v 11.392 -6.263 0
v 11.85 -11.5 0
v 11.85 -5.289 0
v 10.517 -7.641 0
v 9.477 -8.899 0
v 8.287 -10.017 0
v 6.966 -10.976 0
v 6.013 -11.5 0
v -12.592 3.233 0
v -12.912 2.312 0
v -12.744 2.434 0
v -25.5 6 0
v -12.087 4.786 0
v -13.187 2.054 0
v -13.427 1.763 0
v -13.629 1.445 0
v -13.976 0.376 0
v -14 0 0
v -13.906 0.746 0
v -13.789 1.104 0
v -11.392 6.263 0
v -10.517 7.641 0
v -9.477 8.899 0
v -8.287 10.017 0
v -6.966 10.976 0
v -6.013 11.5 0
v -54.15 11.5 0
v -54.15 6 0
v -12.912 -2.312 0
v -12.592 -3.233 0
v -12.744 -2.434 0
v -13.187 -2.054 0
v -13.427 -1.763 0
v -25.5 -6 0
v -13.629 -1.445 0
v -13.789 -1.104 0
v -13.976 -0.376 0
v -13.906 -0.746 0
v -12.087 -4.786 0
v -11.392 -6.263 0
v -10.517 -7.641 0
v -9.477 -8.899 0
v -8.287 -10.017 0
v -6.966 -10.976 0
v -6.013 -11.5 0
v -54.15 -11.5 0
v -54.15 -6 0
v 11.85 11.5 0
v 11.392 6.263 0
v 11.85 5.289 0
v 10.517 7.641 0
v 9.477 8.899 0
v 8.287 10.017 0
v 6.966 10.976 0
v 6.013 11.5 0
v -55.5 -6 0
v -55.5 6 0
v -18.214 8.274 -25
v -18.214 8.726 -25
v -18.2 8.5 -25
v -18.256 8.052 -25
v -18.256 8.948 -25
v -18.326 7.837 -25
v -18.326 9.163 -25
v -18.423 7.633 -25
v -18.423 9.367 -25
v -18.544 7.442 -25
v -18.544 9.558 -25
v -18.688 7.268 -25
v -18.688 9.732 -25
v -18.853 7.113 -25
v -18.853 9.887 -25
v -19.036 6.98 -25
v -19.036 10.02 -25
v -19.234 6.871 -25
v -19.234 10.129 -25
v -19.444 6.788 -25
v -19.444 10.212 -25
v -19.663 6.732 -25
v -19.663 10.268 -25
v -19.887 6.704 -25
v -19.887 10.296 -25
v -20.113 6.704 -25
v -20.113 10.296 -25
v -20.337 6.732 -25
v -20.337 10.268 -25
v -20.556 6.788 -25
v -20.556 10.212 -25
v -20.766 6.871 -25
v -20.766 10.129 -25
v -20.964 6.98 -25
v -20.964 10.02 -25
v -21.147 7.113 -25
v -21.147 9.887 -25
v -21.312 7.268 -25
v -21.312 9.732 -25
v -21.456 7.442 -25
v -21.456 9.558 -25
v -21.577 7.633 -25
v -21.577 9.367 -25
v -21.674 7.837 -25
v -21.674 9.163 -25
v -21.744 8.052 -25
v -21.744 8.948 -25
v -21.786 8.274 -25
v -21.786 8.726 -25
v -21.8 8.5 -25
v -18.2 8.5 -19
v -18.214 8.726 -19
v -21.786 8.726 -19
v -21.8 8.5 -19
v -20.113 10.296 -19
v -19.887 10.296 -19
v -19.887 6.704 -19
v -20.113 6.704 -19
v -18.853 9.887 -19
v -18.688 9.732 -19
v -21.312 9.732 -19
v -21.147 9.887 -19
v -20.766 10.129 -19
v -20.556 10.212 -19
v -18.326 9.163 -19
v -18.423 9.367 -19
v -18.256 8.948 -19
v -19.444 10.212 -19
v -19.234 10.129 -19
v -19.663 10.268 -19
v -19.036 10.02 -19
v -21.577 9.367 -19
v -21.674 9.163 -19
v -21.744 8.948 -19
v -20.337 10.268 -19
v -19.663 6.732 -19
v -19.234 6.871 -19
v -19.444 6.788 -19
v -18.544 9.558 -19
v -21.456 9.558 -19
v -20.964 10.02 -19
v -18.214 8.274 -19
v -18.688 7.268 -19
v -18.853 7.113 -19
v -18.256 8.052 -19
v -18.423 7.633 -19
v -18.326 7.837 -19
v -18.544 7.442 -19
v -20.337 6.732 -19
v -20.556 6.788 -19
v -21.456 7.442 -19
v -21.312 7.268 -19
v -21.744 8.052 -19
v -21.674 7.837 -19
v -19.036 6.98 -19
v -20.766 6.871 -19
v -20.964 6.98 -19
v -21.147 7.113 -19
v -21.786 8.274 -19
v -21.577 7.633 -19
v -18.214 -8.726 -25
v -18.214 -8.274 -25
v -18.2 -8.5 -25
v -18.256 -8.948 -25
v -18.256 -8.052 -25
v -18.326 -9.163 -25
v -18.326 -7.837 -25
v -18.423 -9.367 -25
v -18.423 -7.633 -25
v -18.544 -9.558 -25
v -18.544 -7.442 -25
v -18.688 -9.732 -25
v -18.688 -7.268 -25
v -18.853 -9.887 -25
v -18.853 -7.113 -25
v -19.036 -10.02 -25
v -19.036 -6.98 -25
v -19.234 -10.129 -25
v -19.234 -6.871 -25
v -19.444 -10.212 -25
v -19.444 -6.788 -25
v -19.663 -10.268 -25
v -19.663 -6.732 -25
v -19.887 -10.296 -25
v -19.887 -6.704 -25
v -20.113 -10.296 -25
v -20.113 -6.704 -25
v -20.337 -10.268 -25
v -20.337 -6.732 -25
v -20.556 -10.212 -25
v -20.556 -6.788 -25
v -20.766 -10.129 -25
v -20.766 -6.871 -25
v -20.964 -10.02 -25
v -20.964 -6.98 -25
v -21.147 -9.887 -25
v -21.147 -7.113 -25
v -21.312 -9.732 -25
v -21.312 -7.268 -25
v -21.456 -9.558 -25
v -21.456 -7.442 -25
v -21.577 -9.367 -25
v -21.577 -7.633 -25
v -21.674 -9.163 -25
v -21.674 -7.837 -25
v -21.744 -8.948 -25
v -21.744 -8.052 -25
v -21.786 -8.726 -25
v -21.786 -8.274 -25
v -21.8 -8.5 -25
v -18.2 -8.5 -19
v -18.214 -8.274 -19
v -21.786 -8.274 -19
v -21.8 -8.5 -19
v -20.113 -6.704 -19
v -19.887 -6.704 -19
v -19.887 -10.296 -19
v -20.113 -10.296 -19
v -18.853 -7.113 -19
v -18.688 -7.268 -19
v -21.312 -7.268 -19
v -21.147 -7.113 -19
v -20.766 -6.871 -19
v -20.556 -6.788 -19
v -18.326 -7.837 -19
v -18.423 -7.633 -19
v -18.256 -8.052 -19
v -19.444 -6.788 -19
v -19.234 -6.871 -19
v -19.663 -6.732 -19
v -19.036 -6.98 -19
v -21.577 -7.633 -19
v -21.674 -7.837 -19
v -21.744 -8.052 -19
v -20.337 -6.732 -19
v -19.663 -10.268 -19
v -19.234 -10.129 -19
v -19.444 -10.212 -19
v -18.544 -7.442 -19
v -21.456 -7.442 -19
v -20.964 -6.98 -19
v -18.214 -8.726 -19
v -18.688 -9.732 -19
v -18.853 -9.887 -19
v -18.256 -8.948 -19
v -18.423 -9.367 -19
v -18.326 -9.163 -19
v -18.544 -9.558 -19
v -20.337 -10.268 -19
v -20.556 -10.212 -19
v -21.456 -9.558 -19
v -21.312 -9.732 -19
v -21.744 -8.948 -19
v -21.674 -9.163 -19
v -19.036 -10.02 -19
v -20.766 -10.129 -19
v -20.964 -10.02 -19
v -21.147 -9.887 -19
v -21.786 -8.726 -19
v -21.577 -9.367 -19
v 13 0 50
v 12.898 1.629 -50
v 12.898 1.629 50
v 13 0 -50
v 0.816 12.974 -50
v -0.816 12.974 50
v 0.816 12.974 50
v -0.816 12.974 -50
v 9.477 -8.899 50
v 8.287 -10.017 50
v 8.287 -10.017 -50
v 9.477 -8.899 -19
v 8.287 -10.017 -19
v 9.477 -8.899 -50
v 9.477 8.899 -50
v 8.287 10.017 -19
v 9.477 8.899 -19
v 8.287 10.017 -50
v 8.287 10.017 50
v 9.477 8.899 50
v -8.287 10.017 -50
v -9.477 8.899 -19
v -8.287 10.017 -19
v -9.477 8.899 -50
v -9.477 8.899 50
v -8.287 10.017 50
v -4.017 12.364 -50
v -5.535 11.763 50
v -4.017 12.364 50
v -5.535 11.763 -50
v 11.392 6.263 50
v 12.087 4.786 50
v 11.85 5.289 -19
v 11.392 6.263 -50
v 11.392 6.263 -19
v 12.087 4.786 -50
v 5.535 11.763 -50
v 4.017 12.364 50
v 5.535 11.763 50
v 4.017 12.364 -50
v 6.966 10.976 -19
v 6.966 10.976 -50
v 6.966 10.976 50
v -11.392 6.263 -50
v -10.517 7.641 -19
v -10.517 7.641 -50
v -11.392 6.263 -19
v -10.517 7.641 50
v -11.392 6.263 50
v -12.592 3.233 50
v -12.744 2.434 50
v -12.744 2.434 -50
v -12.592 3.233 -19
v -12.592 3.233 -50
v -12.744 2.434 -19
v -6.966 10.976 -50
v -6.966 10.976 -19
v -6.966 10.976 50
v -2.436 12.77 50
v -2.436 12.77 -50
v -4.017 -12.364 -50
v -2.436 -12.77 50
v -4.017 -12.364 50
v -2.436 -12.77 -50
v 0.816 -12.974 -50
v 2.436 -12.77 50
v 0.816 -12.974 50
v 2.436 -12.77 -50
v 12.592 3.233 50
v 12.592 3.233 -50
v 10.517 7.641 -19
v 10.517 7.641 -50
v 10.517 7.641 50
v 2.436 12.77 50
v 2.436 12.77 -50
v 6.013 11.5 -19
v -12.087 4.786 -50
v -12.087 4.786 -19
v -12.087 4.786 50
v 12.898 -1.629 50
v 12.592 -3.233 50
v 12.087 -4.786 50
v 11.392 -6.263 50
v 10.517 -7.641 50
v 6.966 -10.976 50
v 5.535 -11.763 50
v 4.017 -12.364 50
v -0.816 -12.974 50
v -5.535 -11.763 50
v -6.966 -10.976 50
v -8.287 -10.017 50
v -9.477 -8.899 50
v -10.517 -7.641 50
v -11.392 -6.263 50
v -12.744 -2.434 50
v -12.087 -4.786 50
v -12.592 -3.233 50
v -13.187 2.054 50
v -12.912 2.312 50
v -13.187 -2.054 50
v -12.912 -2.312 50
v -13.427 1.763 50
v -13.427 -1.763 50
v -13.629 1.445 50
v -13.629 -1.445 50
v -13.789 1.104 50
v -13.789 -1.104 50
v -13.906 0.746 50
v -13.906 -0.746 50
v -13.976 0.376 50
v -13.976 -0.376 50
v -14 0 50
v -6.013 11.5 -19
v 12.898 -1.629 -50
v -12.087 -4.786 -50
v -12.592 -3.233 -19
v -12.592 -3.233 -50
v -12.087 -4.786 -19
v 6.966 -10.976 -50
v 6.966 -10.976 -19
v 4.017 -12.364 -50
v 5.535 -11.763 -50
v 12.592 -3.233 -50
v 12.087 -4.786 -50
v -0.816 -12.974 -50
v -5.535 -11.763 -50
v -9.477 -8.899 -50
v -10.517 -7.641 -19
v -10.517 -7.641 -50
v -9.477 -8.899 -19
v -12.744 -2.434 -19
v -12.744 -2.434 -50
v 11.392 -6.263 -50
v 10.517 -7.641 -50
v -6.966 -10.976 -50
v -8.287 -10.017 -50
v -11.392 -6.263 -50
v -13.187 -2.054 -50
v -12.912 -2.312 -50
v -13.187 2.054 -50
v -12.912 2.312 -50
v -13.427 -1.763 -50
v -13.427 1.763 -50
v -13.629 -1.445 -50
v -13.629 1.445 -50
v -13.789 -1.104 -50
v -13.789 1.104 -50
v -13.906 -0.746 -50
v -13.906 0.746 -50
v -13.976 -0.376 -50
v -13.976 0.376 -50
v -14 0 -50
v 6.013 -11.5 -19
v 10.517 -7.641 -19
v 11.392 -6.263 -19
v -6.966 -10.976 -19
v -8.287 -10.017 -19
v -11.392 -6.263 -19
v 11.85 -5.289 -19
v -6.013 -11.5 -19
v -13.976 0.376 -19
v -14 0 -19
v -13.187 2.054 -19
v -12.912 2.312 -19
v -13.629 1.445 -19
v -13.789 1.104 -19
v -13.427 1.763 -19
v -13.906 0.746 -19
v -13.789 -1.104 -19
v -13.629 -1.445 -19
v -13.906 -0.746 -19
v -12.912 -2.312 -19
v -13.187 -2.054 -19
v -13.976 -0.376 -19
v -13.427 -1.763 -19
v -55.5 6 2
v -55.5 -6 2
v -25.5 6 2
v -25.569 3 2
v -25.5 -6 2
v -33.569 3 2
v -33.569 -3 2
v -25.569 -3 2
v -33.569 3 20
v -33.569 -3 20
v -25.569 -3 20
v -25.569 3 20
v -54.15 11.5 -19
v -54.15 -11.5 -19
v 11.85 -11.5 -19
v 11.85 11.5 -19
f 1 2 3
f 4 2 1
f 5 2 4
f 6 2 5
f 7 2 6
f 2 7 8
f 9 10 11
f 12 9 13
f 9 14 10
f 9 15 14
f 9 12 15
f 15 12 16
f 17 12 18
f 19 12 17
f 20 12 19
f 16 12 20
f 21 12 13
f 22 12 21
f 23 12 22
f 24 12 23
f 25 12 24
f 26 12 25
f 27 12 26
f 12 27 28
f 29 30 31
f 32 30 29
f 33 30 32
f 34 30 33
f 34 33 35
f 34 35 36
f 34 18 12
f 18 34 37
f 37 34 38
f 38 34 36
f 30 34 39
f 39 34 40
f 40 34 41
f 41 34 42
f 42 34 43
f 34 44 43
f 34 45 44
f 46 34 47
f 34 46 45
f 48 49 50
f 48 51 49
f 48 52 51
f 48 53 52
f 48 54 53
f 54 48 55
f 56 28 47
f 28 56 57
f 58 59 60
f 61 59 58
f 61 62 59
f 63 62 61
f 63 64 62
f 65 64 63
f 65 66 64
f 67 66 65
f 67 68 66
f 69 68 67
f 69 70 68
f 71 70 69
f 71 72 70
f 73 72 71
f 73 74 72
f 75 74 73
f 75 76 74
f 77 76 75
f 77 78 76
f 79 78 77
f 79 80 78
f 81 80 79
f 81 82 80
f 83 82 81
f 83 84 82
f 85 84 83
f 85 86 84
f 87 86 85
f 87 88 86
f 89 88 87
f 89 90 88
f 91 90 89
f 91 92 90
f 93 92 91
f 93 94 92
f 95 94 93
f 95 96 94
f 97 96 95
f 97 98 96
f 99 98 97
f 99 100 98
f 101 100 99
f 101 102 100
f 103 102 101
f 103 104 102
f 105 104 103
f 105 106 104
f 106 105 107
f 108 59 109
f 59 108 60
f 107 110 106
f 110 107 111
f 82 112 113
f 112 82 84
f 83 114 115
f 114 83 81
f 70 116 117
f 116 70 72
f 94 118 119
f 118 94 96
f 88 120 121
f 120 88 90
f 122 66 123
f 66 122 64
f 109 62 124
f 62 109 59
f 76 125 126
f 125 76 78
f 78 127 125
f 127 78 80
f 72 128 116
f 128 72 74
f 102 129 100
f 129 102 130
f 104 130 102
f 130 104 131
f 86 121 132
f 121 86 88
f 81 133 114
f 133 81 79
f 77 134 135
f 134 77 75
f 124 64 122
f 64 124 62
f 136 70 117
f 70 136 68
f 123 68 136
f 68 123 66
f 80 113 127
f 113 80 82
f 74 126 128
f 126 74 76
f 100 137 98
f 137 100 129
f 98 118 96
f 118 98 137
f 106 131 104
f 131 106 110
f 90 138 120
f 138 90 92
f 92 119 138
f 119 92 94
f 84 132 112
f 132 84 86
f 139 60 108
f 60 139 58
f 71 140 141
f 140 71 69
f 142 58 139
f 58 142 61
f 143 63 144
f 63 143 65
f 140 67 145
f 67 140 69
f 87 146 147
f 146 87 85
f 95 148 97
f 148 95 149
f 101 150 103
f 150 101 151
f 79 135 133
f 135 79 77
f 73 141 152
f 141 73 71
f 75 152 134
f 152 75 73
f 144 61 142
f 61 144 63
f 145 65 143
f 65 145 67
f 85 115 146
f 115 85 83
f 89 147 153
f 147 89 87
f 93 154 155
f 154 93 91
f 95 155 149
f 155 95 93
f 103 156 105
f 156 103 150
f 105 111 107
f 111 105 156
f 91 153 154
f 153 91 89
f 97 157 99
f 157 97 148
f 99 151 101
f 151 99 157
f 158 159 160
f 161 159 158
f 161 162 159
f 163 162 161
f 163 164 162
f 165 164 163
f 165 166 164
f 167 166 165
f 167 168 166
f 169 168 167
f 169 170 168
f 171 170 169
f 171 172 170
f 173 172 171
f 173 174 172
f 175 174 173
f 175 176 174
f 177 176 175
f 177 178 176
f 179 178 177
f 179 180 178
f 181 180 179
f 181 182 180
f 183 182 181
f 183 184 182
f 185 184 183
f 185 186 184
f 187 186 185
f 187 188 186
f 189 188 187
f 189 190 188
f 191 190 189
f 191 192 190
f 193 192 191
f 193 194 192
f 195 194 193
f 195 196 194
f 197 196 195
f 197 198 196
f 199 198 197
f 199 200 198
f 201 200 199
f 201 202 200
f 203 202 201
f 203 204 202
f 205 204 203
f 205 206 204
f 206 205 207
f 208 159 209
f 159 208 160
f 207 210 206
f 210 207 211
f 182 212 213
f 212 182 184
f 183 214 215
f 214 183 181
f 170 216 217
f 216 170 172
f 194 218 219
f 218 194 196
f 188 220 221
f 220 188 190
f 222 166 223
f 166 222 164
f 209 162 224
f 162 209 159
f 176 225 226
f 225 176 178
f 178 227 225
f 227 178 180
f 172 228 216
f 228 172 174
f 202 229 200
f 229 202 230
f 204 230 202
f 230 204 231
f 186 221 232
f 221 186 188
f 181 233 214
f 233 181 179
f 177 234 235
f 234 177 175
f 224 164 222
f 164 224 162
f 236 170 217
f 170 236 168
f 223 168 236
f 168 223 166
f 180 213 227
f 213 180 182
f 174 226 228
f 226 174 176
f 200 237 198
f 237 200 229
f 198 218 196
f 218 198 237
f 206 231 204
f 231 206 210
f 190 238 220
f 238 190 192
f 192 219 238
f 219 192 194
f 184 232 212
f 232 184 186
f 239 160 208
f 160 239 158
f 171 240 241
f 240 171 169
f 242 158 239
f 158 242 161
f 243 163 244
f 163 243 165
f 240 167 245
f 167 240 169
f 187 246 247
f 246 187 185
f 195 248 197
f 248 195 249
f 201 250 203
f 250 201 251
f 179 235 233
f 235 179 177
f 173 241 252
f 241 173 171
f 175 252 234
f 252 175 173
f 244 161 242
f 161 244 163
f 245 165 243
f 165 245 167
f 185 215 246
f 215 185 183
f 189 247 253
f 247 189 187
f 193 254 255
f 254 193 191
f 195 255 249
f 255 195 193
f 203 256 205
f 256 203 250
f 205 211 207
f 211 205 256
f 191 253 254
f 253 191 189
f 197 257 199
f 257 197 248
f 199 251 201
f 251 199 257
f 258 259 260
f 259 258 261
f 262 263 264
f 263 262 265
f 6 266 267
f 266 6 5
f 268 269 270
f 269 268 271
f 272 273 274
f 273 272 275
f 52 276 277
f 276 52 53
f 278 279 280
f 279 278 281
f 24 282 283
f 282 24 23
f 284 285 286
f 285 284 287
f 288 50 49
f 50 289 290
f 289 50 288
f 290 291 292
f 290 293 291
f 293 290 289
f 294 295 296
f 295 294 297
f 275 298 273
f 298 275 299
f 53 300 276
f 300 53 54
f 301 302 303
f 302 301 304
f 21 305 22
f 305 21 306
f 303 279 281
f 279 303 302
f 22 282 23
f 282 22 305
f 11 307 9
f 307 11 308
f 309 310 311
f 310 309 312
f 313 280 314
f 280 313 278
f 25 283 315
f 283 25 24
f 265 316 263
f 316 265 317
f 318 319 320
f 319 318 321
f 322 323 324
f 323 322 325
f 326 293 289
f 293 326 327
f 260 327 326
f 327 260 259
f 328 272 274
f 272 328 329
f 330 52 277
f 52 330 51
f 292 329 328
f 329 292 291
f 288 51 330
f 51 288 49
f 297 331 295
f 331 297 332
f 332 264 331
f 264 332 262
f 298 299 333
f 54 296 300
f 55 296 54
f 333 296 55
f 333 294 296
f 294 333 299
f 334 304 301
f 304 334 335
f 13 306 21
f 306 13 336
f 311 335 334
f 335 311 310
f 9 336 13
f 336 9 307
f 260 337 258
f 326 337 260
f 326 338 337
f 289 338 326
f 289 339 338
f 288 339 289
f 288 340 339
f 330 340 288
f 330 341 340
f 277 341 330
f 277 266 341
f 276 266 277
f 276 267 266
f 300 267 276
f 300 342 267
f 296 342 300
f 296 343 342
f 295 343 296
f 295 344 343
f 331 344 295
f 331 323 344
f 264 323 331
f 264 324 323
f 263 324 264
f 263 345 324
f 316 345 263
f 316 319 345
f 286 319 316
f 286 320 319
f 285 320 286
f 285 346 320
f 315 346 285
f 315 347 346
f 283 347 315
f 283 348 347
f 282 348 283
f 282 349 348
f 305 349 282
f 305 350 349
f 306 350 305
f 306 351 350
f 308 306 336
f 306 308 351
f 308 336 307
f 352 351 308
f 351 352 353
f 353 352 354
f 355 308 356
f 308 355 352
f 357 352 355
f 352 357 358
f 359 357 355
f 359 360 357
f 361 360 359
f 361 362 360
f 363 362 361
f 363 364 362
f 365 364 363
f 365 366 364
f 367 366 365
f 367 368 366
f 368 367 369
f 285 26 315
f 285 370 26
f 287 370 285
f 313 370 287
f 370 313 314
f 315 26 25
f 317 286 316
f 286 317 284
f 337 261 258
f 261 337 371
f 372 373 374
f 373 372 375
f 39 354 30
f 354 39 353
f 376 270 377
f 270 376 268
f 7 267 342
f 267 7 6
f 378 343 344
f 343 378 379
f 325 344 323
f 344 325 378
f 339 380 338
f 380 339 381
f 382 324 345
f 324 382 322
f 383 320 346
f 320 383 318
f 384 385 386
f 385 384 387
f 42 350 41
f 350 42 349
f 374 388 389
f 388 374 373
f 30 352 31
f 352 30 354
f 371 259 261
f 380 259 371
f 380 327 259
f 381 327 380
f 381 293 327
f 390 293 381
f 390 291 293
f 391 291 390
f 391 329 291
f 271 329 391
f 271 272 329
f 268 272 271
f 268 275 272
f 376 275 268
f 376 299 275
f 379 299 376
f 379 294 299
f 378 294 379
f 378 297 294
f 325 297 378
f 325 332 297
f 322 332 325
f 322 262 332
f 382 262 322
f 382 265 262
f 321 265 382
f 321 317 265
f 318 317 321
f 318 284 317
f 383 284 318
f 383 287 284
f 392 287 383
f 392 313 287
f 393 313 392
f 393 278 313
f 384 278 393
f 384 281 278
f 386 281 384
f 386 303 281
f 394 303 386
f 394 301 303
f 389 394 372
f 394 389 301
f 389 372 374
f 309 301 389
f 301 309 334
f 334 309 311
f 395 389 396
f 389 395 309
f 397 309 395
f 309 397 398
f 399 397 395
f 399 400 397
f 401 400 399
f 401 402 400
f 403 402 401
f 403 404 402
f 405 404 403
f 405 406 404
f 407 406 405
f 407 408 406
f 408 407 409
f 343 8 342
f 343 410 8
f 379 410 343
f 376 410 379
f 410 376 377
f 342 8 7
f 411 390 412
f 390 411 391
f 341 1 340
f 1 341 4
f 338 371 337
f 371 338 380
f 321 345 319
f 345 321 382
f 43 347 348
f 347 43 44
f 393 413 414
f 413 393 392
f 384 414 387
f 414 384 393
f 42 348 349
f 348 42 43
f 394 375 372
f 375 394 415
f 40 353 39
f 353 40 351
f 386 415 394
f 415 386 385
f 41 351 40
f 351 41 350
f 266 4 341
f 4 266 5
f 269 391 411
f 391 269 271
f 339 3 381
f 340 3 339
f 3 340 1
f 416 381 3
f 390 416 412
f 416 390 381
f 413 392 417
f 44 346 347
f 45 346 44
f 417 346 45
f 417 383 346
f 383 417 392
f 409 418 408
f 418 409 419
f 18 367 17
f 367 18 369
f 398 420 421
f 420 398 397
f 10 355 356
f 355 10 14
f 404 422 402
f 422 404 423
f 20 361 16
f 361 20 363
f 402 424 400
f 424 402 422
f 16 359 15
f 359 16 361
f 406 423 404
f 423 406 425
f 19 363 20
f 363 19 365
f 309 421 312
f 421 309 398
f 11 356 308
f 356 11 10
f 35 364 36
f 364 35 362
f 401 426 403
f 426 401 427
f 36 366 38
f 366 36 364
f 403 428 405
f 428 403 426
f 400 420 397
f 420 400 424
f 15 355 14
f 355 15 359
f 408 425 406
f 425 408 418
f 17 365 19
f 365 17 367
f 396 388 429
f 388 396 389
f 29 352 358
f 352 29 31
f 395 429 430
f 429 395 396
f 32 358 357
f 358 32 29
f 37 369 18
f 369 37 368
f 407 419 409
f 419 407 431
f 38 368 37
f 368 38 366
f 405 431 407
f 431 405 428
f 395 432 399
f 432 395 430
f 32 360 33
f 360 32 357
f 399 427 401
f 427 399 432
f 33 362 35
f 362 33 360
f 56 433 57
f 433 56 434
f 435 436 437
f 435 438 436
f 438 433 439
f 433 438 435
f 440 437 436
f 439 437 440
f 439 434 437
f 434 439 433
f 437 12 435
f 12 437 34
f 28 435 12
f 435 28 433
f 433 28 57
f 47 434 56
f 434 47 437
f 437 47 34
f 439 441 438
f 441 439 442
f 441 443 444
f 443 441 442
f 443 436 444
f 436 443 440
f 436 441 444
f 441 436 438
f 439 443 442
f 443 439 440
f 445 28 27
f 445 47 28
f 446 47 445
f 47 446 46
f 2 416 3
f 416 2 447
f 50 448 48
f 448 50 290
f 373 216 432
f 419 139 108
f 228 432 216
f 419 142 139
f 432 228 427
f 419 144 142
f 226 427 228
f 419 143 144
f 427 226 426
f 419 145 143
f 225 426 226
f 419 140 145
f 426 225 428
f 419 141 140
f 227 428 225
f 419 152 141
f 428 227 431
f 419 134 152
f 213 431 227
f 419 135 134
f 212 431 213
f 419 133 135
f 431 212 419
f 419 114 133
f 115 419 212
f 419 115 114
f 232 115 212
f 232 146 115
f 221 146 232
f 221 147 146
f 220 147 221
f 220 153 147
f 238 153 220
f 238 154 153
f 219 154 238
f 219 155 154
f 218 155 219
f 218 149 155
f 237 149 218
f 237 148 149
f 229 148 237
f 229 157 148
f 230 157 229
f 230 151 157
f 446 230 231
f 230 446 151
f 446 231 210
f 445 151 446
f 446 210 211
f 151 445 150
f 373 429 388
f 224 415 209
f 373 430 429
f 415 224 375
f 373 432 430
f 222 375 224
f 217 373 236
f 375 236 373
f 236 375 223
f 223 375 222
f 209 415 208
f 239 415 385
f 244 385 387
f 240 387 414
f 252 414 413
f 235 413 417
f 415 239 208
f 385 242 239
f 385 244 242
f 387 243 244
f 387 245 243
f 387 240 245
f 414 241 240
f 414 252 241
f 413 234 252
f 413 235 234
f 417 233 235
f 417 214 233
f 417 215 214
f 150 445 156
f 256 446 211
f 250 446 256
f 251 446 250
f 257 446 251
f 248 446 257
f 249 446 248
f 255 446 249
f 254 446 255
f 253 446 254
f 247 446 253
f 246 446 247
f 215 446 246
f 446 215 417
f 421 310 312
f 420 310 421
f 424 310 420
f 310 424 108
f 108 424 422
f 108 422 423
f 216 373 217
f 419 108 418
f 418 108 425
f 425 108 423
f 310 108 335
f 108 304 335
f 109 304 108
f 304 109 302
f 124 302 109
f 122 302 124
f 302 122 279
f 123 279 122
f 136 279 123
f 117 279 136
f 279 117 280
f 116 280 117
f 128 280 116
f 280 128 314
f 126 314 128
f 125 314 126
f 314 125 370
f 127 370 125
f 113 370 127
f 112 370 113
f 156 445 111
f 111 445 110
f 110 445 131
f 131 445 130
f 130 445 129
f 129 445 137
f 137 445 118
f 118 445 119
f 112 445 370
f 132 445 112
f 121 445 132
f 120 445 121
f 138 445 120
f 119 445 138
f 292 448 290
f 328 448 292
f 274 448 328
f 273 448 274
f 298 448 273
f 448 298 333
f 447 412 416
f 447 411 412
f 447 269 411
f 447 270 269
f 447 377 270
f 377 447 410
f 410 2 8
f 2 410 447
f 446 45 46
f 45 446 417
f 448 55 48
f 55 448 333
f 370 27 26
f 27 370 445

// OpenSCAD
$fn = 50;


difference() {
	union() {
		translate(v = [-20, 8.5000000000, 0]) {
			rotate(a = [0, 0, 0]) {
				difference() {
					union() {
						translate(v = [0, 0, -1.7000000000]) {
							cylinder(h = 1.7000000000, r1 = 1.5000000000, r2 = 2.4000000000);
						}
						translate(v = [0, 0, -25.0000000000]) {
							cylinder(h = 25, r = 1.5000000000);
						}
						translate(v = [0, 0, -25.0000000000]) {
							cylinder(h = 25, r = 1.8000000000);
						}
						translate(v = [0, 0, -25.0000000000]) {
							cylinder(h = 25, r = 1.5000000000);
						}
					}
					union();
				}
			}
		}
		translate(v = [-20, -8.5000000000, 0]) {
			rotate(a = [0, 0, 0]) {
				difference() {
					union() {
						translate(v = [0, 0, -1.7000000000]) {
							cylinder(h = 1.7000000000, r1 = 1.5000000000, r2 = 2.4000000000);
						}
						translate(v = [0, 0, -25.0000000000]) {
							cylinder(h = 25, r = 1.5000000000);
						}
						translate(v = [0, 0, -25.0000000000]) {
							cylinder(h = 25, r = 1.8000000000);
						}
						translate(v = [0, 0, -25.0000000000]) {
							cylinder(h = 25, r = 1.5000000000);
						}
					}
					union();
				}
			}
		}
		translate(v = [0, 0, -50.0000000000]) {
			cylinder(h = 100, r = 13.0000000000);
		}
		translate(v = [-11, 0, -50.0000000000]) {
			cylinder(h = 100, r = 3.0000000000);
		}
		translate(v = [-55.5000000000, -6.0000000000, 0]) {
			cube(size = [30, 12, 2]);
		}
		translate(v = [-54.0000000000, -4.0000000000, 0]) {
			cube(size = [18, 8, 2]);
		}
		translate(v = [-33.5690000000, -3.0000000000, 0]) {
			cube(size = [8, 6, 20]);
		}
		translate(v = [-54.1500000000, -11.5000000000, -19]) {
			cube(size = [66, 23, 19]);
		}
	}
	union();
}
